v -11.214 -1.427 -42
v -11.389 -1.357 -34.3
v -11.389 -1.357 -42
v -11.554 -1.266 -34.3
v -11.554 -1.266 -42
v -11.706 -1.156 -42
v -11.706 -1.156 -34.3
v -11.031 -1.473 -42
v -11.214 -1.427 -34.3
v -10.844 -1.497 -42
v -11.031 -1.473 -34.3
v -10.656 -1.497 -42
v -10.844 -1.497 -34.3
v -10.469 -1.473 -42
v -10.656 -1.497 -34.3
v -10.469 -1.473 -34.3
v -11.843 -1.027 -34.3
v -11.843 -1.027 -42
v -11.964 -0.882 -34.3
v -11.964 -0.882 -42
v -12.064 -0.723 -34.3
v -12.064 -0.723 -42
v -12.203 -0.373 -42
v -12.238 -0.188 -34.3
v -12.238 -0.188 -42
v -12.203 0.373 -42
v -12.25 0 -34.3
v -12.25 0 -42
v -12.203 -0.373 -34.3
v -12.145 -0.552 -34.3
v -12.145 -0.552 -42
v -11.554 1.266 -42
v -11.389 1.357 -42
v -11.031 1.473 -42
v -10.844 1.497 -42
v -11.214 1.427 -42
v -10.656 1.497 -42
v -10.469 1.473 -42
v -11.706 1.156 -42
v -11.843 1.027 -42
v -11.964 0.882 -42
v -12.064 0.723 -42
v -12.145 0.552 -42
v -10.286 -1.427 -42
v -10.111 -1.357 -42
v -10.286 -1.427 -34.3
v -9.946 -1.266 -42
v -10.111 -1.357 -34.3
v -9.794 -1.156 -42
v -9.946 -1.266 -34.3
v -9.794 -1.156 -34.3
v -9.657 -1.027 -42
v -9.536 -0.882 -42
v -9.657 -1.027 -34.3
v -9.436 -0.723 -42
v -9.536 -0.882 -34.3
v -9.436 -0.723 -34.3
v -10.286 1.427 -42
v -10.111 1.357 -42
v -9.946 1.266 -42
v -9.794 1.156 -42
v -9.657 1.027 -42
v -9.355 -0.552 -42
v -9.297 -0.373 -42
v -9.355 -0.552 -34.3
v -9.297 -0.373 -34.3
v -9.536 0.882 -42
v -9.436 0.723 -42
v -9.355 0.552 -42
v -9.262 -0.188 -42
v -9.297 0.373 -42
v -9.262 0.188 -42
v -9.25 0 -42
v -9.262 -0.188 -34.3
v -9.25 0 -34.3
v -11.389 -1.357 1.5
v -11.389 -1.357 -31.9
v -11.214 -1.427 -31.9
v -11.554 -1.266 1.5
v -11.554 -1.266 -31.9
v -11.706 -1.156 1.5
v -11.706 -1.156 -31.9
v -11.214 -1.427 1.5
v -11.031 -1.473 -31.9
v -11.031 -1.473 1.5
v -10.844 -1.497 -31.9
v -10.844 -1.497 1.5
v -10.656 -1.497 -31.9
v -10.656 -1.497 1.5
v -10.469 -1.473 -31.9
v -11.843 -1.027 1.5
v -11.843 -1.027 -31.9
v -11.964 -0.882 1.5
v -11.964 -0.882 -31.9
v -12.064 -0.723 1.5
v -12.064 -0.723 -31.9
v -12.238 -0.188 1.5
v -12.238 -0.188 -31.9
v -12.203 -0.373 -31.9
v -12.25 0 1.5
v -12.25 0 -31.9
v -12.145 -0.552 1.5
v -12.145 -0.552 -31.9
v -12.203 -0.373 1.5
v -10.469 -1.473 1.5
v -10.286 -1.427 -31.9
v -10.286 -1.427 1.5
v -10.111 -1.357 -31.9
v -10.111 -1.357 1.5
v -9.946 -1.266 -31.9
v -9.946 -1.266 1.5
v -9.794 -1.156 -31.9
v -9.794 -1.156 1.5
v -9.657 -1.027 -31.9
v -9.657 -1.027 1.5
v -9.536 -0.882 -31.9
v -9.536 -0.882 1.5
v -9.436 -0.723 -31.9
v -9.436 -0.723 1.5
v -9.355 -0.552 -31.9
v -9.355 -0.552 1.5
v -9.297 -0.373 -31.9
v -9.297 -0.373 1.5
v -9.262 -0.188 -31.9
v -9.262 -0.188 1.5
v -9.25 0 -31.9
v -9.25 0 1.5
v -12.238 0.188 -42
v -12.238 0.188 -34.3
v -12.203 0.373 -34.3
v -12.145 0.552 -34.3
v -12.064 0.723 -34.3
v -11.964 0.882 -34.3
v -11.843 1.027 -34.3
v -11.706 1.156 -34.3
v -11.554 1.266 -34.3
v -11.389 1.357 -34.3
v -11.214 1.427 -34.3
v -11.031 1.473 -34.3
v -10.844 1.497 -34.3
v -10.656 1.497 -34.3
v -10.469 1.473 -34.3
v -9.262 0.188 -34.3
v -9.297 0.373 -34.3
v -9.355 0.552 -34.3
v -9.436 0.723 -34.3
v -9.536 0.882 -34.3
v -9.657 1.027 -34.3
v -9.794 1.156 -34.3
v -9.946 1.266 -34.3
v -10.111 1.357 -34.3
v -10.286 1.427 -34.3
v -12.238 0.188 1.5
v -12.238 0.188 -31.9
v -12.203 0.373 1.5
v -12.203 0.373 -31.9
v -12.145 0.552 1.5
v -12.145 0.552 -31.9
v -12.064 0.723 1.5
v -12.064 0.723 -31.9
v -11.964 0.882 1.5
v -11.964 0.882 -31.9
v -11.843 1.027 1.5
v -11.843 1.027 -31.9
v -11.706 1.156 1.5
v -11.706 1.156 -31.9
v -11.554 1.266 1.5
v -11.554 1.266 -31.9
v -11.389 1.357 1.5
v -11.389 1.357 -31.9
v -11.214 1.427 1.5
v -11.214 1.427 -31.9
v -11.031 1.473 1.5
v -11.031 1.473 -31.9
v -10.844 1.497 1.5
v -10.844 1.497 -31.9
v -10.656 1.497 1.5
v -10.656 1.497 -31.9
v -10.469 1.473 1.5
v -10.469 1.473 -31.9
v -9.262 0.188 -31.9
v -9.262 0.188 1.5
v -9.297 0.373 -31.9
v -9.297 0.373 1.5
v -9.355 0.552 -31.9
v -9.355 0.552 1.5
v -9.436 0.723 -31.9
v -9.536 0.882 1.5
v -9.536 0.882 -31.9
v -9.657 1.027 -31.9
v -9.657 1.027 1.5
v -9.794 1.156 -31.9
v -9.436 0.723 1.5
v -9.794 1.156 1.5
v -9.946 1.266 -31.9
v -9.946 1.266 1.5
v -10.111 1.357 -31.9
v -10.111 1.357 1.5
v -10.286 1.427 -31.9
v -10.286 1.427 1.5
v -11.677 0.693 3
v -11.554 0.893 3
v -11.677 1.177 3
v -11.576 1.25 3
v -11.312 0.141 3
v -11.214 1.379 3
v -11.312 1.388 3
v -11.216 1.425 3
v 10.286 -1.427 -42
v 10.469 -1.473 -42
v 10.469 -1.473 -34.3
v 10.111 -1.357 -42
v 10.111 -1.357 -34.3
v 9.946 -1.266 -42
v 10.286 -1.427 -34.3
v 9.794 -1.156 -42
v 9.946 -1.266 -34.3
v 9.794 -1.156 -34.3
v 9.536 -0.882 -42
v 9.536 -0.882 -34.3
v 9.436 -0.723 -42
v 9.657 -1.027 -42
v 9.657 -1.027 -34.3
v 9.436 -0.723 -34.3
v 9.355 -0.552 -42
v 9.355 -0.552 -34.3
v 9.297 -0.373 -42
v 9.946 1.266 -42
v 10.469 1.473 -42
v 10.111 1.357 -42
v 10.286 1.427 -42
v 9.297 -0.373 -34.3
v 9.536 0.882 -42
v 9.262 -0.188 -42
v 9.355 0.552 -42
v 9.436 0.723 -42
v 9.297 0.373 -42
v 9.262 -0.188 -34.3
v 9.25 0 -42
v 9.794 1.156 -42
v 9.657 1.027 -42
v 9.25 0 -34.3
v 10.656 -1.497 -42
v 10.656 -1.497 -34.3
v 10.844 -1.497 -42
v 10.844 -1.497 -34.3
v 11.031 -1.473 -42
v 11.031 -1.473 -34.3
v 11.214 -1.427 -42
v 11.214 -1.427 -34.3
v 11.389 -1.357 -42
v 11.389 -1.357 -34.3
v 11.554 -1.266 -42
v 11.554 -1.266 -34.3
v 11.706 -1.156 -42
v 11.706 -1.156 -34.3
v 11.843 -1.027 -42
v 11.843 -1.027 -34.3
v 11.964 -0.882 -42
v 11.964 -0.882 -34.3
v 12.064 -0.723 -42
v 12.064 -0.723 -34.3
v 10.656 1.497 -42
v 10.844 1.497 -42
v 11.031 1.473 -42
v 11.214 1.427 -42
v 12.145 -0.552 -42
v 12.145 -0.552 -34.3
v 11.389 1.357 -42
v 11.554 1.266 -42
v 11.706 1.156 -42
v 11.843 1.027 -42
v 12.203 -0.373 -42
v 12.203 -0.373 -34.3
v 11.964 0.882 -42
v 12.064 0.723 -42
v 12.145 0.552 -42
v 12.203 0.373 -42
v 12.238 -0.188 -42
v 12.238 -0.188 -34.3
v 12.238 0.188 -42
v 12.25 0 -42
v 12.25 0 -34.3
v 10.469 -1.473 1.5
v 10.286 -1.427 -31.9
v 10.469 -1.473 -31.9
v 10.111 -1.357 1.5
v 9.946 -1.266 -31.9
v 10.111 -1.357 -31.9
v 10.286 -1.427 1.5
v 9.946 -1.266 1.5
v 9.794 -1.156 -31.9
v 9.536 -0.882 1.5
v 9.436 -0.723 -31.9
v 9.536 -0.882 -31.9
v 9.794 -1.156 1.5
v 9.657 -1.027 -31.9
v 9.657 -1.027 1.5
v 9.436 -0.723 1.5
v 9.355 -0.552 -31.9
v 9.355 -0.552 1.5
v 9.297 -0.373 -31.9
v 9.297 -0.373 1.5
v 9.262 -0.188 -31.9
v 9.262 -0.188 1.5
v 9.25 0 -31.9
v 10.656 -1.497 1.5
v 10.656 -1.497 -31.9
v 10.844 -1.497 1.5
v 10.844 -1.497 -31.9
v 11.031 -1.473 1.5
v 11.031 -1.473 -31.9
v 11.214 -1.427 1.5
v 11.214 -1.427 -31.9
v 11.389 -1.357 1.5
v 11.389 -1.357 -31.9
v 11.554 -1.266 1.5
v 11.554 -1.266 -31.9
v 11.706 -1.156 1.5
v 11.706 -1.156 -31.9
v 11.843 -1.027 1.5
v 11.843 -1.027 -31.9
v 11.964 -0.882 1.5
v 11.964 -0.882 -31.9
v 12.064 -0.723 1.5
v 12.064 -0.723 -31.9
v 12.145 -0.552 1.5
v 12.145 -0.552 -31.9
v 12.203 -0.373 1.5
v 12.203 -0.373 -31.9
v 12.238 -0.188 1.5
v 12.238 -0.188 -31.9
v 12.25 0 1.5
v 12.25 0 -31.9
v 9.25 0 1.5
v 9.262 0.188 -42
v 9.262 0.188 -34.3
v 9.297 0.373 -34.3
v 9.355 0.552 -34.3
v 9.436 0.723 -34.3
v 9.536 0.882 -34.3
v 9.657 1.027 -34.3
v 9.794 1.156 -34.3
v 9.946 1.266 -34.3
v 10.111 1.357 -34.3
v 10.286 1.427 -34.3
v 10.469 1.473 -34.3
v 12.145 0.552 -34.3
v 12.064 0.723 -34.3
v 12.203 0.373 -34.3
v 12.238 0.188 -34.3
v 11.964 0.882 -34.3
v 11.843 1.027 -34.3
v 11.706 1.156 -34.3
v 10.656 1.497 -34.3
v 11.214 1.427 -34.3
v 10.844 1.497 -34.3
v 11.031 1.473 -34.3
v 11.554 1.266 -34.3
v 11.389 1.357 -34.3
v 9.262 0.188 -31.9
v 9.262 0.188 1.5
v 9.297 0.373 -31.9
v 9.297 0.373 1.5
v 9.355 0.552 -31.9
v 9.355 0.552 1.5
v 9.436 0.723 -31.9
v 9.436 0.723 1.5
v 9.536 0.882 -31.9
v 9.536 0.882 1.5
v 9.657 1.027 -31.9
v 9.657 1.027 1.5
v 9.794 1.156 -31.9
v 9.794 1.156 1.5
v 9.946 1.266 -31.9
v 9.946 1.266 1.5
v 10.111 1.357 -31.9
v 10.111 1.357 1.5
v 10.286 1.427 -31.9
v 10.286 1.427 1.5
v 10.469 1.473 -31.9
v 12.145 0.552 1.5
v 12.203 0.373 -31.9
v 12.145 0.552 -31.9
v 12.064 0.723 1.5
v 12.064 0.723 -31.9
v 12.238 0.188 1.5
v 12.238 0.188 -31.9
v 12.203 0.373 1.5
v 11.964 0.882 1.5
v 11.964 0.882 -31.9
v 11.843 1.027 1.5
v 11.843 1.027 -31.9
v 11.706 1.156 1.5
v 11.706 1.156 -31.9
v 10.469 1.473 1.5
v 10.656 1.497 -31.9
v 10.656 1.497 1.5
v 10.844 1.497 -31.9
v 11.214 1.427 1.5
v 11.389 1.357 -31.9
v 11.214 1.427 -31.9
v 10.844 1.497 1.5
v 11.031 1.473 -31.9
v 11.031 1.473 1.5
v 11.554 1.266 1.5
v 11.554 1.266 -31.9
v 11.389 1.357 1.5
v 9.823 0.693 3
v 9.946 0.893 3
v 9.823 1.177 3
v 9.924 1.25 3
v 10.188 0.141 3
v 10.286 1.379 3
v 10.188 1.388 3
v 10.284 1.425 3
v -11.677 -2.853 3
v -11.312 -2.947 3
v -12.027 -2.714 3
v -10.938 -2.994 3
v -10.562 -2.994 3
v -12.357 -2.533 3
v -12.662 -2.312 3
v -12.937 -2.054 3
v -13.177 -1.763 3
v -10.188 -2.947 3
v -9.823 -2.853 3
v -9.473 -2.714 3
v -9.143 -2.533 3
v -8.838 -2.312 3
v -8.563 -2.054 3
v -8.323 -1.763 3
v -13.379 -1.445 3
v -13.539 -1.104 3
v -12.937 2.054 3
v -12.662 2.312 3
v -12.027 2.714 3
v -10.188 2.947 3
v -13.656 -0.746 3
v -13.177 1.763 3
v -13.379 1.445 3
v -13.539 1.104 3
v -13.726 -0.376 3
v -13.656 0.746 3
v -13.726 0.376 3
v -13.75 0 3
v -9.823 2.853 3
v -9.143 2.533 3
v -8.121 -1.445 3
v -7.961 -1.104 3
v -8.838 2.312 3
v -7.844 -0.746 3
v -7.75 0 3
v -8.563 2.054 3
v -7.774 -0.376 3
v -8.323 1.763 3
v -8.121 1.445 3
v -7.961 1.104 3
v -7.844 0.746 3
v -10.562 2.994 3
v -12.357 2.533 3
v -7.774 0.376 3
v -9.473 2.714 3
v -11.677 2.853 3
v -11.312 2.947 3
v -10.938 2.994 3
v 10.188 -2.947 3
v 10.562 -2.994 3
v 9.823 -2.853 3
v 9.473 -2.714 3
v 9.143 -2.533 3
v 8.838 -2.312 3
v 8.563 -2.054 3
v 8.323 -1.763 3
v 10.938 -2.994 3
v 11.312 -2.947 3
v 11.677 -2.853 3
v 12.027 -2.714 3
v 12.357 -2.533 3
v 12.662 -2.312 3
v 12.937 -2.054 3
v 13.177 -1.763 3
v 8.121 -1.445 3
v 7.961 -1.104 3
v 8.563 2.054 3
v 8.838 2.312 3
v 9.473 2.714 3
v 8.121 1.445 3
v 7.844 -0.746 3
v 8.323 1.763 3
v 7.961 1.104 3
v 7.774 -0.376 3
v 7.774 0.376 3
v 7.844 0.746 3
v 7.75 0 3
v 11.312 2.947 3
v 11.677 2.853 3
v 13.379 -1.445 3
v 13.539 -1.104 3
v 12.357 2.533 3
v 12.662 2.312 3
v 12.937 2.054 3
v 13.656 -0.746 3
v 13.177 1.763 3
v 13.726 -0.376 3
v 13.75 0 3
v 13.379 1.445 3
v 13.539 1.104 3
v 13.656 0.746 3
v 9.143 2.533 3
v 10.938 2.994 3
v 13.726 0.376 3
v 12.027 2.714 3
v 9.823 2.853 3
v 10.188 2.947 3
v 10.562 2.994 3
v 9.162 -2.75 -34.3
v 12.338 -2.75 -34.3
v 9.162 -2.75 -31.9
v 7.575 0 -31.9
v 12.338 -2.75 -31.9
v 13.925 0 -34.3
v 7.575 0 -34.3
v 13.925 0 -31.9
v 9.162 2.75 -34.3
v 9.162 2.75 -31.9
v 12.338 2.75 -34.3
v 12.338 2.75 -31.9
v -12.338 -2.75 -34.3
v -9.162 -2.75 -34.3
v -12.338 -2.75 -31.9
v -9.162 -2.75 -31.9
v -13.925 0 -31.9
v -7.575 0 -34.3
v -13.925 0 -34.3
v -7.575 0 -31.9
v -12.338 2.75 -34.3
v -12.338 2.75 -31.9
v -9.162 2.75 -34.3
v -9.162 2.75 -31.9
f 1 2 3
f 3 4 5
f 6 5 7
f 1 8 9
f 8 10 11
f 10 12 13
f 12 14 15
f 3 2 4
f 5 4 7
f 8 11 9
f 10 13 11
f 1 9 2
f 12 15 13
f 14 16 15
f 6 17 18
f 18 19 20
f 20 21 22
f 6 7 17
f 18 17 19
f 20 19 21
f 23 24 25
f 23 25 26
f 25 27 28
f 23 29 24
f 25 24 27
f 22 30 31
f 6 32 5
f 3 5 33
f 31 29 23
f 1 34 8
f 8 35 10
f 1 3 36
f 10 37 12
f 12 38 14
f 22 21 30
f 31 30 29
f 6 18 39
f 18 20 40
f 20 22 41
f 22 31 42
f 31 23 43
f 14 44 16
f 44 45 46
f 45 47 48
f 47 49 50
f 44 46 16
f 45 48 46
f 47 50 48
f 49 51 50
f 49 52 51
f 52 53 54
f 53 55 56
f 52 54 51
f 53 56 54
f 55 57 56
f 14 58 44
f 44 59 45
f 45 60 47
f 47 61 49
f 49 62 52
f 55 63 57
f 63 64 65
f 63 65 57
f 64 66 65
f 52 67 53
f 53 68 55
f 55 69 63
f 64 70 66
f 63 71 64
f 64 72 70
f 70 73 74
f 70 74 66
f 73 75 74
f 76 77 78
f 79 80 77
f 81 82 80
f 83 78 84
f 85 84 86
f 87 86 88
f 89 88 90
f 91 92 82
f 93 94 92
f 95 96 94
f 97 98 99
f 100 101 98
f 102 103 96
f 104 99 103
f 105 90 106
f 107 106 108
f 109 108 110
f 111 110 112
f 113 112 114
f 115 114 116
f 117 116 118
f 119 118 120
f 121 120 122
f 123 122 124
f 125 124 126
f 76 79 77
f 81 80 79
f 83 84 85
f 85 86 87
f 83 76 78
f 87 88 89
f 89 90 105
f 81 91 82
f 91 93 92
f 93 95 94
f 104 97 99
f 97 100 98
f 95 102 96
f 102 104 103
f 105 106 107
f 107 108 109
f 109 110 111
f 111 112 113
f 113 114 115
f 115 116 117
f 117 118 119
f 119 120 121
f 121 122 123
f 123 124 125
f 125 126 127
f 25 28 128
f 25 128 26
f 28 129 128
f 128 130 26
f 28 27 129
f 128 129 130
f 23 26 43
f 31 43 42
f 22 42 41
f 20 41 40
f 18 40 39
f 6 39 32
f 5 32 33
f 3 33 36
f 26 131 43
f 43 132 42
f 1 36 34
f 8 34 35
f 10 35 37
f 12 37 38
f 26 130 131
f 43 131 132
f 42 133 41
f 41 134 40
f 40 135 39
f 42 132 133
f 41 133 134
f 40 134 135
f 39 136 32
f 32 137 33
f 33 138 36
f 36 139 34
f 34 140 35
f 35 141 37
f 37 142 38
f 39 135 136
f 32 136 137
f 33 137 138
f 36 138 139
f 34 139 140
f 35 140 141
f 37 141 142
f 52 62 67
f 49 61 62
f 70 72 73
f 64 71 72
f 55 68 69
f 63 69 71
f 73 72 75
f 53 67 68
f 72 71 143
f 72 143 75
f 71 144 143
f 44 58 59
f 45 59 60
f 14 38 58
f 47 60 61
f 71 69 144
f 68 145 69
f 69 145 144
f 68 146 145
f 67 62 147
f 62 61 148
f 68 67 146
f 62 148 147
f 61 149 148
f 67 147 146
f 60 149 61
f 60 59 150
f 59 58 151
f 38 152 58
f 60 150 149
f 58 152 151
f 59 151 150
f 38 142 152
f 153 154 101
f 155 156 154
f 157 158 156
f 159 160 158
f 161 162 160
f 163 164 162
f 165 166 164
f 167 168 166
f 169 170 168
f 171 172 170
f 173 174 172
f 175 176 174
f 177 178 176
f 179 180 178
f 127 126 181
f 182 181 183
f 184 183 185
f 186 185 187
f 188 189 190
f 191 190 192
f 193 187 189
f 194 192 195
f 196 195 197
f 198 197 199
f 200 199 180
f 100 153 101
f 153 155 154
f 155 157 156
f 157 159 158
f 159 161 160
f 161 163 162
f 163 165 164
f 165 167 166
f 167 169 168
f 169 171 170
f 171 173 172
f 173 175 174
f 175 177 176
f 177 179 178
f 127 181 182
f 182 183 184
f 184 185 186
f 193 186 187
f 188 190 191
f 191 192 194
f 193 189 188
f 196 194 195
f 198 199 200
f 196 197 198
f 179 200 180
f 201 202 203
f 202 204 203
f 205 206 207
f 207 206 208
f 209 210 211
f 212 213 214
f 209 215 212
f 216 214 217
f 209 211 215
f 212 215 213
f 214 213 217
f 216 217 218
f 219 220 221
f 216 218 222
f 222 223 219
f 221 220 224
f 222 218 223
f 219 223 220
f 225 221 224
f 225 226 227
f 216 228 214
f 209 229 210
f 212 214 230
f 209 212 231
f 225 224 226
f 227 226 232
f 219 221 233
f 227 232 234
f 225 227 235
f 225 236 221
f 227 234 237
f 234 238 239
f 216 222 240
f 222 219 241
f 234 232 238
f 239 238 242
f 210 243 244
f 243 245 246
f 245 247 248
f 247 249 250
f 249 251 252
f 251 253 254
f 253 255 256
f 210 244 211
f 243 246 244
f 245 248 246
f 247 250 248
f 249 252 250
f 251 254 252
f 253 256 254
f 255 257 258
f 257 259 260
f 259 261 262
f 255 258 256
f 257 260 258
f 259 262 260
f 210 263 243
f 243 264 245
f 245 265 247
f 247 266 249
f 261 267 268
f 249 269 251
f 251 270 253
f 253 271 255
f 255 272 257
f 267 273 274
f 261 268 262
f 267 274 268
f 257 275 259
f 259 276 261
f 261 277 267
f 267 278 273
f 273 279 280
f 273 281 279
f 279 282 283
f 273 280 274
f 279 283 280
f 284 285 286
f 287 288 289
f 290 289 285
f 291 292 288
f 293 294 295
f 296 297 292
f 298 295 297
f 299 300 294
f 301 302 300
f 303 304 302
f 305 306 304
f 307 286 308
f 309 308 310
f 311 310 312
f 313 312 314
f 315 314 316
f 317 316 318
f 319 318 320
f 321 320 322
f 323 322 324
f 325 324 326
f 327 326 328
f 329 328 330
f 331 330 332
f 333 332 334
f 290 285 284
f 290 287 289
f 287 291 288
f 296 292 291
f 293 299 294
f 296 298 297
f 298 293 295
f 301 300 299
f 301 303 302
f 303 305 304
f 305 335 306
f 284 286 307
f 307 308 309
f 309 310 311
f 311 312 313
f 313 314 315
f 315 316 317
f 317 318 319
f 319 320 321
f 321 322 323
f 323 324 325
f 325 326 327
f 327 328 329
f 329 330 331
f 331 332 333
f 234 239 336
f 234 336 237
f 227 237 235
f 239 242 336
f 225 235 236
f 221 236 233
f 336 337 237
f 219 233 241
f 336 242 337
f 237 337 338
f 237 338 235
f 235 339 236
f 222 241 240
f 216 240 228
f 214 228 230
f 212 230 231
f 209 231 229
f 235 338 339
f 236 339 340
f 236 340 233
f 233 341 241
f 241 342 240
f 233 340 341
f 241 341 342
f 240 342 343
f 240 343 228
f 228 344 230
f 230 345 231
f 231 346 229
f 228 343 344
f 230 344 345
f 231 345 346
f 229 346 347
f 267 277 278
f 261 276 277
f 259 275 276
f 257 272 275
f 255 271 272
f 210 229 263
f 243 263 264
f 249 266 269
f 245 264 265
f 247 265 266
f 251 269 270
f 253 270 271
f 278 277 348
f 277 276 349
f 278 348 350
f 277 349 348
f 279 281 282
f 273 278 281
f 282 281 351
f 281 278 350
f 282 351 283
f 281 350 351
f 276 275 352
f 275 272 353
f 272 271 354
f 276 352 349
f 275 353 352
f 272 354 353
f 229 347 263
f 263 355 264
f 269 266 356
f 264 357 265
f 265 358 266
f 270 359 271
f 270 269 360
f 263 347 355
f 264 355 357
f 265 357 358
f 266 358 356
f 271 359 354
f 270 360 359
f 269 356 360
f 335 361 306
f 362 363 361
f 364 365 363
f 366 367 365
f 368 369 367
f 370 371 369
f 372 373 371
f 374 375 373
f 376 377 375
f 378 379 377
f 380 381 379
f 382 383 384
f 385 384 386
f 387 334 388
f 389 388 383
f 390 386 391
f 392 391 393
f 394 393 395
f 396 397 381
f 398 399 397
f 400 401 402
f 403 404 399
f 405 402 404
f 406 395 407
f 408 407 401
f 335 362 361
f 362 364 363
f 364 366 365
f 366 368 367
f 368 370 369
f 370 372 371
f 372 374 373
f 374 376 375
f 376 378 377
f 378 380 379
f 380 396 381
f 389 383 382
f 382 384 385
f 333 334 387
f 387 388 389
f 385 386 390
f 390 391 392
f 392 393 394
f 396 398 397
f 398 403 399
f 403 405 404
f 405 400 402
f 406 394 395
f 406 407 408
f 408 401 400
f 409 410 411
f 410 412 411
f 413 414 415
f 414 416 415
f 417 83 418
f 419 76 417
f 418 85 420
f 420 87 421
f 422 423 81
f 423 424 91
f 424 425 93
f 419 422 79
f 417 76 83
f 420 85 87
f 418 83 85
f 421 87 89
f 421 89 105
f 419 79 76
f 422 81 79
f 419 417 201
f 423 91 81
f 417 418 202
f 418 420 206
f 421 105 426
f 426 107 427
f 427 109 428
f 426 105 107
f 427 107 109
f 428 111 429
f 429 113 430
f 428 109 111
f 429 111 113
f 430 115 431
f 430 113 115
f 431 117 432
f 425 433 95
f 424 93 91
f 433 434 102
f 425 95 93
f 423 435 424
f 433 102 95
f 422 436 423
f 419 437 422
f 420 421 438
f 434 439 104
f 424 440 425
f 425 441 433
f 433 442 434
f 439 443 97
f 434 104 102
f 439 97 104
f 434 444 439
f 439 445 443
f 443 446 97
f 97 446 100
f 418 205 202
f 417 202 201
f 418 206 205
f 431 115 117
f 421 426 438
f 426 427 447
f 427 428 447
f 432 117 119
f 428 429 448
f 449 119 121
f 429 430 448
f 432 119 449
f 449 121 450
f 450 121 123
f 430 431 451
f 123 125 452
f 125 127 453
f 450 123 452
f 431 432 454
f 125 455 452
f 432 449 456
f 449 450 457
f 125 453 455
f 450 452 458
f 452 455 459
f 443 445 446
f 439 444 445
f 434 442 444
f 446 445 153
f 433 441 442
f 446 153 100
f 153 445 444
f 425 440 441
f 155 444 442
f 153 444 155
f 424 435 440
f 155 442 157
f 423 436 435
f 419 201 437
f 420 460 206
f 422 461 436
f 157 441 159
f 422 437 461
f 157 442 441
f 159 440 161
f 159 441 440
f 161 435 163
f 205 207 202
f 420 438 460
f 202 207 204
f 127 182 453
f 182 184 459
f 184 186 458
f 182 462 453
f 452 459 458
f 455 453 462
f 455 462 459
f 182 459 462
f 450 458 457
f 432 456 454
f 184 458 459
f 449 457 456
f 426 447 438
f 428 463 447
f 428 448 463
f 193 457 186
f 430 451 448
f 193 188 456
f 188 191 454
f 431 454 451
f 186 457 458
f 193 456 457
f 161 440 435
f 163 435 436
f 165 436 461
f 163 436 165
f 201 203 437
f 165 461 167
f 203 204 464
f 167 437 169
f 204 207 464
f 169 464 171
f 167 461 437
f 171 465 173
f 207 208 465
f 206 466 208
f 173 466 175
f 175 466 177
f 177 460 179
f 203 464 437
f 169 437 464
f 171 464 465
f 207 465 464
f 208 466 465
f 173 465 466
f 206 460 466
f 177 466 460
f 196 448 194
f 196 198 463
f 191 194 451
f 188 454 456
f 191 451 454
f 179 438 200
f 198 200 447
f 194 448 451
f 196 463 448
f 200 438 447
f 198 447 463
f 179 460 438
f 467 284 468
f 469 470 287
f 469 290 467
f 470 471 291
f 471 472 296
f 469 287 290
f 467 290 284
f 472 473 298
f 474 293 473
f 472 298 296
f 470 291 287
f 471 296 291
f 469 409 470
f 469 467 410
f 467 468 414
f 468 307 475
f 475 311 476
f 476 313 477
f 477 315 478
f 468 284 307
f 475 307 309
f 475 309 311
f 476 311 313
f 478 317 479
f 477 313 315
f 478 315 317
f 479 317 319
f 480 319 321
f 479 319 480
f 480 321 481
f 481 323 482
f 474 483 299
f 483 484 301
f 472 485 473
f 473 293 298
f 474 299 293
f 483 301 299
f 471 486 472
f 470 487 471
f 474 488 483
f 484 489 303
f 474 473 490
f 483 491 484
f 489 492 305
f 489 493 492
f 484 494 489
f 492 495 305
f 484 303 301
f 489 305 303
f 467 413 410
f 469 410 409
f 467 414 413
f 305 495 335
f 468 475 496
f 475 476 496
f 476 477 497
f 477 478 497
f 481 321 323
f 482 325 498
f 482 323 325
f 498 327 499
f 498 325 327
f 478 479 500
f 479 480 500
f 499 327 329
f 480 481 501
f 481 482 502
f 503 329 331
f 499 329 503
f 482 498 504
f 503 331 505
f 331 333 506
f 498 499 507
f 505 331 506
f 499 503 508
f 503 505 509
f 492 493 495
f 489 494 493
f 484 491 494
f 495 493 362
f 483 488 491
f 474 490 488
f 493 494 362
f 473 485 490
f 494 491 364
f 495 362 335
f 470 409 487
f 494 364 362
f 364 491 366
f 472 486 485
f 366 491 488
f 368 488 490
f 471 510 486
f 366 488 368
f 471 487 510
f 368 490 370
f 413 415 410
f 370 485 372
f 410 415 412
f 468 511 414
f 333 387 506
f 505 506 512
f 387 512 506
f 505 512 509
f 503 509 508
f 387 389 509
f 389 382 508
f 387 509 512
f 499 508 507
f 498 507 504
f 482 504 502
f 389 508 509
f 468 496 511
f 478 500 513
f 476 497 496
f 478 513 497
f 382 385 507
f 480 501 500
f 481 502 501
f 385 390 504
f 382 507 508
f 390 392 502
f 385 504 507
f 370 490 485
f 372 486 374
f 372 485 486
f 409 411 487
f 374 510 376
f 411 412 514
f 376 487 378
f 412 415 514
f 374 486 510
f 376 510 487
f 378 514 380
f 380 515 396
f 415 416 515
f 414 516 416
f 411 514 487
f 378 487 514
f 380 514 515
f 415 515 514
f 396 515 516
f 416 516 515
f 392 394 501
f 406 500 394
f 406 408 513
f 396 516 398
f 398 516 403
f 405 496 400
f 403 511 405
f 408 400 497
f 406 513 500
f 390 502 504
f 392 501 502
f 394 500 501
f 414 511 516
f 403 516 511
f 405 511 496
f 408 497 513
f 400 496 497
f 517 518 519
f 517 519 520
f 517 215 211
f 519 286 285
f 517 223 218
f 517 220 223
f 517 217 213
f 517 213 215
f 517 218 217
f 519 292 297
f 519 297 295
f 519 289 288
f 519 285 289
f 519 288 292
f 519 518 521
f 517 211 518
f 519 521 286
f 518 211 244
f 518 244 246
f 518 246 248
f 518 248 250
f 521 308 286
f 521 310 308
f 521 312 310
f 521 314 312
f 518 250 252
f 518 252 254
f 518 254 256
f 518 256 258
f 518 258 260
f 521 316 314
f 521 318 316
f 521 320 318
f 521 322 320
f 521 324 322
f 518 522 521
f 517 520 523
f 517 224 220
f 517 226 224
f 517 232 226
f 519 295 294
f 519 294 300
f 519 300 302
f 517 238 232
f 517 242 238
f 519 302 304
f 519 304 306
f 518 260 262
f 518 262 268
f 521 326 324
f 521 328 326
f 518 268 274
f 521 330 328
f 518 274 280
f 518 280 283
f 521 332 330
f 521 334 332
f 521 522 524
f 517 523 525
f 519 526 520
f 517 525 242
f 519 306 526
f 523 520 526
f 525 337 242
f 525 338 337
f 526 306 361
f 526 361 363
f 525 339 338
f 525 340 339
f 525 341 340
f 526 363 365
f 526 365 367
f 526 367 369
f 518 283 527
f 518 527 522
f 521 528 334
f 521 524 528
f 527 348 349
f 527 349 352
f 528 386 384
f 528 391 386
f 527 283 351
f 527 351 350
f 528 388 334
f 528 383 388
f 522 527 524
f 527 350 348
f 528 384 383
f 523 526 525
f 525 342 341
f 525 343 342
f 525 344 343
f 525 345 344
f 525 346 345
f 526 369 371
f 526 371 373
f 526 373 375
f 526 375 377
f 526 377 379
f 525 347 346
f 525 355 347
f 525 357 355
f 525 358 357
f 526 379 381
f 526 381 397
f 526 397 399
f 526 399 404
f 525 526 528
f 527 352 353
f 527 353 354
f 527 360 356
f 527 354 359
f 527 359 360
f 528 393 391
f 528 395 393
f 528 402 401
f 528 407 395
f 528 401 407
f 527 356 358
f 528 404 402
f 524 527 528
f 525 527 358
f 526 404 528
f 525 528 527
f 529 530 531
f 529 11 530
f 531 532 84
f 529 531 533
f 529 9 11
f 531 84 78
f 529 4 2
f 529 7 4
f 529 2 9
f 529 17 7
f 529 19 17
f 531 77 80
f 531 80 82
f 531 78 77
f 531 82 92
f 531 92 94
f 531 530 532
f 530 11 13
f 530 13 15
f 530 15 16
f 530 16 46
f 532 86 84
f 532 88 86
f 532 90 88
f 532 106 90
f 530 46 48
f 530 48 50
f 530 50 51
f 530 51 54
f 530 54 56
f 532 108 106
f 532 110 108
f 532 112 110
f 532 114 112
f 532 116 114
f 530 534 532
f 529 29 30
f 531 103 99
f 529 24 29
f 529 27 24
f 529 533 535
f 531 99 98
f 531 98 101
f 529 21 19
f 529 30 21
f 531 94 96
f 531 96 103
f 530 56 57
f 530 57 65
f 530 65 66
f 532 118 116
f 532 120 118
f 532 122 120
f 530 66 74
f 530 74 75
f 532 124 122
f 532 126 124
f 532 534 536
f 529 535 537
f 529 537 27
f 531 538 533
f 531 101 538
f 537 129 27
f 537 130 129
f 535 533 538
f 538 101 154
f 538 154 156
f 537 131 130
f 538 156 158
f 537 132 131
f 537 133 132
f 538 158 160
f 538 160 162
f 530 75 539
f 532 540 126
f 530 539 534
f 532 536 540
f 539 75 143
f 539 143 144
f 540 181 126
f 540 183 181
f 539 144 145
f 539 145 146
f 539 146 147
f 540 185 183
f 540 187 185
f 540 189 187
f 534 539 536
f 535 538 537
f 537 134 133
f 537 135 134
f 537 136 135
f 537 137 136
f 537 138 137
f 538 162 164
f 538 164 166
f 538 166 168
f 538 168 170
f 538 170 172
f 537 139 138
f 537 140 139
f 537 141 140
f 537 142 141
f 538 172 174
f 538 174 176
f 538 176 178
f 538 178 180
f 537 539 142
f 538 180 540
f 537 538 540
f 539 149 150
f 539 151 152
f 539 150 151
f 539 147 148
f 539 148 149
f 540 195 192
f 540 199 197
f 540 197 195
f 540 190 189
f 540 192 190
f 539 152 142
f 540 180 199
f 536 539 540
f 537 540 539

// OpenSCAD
$fn = 50;

difference() {
	union() {
		translate(v = [-10.75, 0, 3]) {
			rotate(a = [0, 0, 0]) {
				difference() {
					union() {
						translate(v = [0, 0, -45.0]) {
							cylinder(h = 45, r = 1.5);
						}
						translate(v = [0, 0, -1.5]) {
							cylinder(h = 1.5, r1 = 1.5, r2 = 3);
						}
					}
					union();
				}
			}
		}
		translate(v = [-10.75, 0, -34.3]) {
			rotate(a = [0, 0, 0]) {
				difference() {
					union() {
						linear_extrude(height = 2.4) {
							polygon(points = [[3.1754264805429417, 0.0], [1.5877132402714713, 2.75], [-1.5877132402714702, 2.7500000000000004], [-3.1754264805429417, 3.888775875324659e-16], [-1.5877132402714722, -2.7499999999999996], [1.5877132402714687, -2.7500000000000013]]);
						}
					}
					union();
				}
			}
		}
		translate(v = [10.75, 0, 3]) {
			rotate(a = [0, 0, 0]) {
				difference() {
					union() {
						translate(v = [0, 0, -45.0]) {
							cylinder(h = 45, r = 1.5);
						}
						translate(v = [0, 0, -1.5]) {
							cylinder(h = 1.5, r1 = 1.5, r2 = 3);
						}
					}
					union();
				}
			}
		}
		translate(v = [10.75, 0, -34.3]) {
			rotate(a = [0, 0, 0]) {
				difference() {
					union() {
						linear_extrude(height = 2.4) {
							polygon(points = [[3.1754264805429417, 0.0], [1.5877132402714713, 2.75], [-1.5877132402714702, 2.7500000000000004], [-3.1754264805429417, 3.888775875324659e-16], [-1.5877132402714722, -2.7499999999999996], [1.5877132402714687, -2.7500000000000013]]);
						}
					}
					union();
				}
			}
		}
	}
	union();
}
